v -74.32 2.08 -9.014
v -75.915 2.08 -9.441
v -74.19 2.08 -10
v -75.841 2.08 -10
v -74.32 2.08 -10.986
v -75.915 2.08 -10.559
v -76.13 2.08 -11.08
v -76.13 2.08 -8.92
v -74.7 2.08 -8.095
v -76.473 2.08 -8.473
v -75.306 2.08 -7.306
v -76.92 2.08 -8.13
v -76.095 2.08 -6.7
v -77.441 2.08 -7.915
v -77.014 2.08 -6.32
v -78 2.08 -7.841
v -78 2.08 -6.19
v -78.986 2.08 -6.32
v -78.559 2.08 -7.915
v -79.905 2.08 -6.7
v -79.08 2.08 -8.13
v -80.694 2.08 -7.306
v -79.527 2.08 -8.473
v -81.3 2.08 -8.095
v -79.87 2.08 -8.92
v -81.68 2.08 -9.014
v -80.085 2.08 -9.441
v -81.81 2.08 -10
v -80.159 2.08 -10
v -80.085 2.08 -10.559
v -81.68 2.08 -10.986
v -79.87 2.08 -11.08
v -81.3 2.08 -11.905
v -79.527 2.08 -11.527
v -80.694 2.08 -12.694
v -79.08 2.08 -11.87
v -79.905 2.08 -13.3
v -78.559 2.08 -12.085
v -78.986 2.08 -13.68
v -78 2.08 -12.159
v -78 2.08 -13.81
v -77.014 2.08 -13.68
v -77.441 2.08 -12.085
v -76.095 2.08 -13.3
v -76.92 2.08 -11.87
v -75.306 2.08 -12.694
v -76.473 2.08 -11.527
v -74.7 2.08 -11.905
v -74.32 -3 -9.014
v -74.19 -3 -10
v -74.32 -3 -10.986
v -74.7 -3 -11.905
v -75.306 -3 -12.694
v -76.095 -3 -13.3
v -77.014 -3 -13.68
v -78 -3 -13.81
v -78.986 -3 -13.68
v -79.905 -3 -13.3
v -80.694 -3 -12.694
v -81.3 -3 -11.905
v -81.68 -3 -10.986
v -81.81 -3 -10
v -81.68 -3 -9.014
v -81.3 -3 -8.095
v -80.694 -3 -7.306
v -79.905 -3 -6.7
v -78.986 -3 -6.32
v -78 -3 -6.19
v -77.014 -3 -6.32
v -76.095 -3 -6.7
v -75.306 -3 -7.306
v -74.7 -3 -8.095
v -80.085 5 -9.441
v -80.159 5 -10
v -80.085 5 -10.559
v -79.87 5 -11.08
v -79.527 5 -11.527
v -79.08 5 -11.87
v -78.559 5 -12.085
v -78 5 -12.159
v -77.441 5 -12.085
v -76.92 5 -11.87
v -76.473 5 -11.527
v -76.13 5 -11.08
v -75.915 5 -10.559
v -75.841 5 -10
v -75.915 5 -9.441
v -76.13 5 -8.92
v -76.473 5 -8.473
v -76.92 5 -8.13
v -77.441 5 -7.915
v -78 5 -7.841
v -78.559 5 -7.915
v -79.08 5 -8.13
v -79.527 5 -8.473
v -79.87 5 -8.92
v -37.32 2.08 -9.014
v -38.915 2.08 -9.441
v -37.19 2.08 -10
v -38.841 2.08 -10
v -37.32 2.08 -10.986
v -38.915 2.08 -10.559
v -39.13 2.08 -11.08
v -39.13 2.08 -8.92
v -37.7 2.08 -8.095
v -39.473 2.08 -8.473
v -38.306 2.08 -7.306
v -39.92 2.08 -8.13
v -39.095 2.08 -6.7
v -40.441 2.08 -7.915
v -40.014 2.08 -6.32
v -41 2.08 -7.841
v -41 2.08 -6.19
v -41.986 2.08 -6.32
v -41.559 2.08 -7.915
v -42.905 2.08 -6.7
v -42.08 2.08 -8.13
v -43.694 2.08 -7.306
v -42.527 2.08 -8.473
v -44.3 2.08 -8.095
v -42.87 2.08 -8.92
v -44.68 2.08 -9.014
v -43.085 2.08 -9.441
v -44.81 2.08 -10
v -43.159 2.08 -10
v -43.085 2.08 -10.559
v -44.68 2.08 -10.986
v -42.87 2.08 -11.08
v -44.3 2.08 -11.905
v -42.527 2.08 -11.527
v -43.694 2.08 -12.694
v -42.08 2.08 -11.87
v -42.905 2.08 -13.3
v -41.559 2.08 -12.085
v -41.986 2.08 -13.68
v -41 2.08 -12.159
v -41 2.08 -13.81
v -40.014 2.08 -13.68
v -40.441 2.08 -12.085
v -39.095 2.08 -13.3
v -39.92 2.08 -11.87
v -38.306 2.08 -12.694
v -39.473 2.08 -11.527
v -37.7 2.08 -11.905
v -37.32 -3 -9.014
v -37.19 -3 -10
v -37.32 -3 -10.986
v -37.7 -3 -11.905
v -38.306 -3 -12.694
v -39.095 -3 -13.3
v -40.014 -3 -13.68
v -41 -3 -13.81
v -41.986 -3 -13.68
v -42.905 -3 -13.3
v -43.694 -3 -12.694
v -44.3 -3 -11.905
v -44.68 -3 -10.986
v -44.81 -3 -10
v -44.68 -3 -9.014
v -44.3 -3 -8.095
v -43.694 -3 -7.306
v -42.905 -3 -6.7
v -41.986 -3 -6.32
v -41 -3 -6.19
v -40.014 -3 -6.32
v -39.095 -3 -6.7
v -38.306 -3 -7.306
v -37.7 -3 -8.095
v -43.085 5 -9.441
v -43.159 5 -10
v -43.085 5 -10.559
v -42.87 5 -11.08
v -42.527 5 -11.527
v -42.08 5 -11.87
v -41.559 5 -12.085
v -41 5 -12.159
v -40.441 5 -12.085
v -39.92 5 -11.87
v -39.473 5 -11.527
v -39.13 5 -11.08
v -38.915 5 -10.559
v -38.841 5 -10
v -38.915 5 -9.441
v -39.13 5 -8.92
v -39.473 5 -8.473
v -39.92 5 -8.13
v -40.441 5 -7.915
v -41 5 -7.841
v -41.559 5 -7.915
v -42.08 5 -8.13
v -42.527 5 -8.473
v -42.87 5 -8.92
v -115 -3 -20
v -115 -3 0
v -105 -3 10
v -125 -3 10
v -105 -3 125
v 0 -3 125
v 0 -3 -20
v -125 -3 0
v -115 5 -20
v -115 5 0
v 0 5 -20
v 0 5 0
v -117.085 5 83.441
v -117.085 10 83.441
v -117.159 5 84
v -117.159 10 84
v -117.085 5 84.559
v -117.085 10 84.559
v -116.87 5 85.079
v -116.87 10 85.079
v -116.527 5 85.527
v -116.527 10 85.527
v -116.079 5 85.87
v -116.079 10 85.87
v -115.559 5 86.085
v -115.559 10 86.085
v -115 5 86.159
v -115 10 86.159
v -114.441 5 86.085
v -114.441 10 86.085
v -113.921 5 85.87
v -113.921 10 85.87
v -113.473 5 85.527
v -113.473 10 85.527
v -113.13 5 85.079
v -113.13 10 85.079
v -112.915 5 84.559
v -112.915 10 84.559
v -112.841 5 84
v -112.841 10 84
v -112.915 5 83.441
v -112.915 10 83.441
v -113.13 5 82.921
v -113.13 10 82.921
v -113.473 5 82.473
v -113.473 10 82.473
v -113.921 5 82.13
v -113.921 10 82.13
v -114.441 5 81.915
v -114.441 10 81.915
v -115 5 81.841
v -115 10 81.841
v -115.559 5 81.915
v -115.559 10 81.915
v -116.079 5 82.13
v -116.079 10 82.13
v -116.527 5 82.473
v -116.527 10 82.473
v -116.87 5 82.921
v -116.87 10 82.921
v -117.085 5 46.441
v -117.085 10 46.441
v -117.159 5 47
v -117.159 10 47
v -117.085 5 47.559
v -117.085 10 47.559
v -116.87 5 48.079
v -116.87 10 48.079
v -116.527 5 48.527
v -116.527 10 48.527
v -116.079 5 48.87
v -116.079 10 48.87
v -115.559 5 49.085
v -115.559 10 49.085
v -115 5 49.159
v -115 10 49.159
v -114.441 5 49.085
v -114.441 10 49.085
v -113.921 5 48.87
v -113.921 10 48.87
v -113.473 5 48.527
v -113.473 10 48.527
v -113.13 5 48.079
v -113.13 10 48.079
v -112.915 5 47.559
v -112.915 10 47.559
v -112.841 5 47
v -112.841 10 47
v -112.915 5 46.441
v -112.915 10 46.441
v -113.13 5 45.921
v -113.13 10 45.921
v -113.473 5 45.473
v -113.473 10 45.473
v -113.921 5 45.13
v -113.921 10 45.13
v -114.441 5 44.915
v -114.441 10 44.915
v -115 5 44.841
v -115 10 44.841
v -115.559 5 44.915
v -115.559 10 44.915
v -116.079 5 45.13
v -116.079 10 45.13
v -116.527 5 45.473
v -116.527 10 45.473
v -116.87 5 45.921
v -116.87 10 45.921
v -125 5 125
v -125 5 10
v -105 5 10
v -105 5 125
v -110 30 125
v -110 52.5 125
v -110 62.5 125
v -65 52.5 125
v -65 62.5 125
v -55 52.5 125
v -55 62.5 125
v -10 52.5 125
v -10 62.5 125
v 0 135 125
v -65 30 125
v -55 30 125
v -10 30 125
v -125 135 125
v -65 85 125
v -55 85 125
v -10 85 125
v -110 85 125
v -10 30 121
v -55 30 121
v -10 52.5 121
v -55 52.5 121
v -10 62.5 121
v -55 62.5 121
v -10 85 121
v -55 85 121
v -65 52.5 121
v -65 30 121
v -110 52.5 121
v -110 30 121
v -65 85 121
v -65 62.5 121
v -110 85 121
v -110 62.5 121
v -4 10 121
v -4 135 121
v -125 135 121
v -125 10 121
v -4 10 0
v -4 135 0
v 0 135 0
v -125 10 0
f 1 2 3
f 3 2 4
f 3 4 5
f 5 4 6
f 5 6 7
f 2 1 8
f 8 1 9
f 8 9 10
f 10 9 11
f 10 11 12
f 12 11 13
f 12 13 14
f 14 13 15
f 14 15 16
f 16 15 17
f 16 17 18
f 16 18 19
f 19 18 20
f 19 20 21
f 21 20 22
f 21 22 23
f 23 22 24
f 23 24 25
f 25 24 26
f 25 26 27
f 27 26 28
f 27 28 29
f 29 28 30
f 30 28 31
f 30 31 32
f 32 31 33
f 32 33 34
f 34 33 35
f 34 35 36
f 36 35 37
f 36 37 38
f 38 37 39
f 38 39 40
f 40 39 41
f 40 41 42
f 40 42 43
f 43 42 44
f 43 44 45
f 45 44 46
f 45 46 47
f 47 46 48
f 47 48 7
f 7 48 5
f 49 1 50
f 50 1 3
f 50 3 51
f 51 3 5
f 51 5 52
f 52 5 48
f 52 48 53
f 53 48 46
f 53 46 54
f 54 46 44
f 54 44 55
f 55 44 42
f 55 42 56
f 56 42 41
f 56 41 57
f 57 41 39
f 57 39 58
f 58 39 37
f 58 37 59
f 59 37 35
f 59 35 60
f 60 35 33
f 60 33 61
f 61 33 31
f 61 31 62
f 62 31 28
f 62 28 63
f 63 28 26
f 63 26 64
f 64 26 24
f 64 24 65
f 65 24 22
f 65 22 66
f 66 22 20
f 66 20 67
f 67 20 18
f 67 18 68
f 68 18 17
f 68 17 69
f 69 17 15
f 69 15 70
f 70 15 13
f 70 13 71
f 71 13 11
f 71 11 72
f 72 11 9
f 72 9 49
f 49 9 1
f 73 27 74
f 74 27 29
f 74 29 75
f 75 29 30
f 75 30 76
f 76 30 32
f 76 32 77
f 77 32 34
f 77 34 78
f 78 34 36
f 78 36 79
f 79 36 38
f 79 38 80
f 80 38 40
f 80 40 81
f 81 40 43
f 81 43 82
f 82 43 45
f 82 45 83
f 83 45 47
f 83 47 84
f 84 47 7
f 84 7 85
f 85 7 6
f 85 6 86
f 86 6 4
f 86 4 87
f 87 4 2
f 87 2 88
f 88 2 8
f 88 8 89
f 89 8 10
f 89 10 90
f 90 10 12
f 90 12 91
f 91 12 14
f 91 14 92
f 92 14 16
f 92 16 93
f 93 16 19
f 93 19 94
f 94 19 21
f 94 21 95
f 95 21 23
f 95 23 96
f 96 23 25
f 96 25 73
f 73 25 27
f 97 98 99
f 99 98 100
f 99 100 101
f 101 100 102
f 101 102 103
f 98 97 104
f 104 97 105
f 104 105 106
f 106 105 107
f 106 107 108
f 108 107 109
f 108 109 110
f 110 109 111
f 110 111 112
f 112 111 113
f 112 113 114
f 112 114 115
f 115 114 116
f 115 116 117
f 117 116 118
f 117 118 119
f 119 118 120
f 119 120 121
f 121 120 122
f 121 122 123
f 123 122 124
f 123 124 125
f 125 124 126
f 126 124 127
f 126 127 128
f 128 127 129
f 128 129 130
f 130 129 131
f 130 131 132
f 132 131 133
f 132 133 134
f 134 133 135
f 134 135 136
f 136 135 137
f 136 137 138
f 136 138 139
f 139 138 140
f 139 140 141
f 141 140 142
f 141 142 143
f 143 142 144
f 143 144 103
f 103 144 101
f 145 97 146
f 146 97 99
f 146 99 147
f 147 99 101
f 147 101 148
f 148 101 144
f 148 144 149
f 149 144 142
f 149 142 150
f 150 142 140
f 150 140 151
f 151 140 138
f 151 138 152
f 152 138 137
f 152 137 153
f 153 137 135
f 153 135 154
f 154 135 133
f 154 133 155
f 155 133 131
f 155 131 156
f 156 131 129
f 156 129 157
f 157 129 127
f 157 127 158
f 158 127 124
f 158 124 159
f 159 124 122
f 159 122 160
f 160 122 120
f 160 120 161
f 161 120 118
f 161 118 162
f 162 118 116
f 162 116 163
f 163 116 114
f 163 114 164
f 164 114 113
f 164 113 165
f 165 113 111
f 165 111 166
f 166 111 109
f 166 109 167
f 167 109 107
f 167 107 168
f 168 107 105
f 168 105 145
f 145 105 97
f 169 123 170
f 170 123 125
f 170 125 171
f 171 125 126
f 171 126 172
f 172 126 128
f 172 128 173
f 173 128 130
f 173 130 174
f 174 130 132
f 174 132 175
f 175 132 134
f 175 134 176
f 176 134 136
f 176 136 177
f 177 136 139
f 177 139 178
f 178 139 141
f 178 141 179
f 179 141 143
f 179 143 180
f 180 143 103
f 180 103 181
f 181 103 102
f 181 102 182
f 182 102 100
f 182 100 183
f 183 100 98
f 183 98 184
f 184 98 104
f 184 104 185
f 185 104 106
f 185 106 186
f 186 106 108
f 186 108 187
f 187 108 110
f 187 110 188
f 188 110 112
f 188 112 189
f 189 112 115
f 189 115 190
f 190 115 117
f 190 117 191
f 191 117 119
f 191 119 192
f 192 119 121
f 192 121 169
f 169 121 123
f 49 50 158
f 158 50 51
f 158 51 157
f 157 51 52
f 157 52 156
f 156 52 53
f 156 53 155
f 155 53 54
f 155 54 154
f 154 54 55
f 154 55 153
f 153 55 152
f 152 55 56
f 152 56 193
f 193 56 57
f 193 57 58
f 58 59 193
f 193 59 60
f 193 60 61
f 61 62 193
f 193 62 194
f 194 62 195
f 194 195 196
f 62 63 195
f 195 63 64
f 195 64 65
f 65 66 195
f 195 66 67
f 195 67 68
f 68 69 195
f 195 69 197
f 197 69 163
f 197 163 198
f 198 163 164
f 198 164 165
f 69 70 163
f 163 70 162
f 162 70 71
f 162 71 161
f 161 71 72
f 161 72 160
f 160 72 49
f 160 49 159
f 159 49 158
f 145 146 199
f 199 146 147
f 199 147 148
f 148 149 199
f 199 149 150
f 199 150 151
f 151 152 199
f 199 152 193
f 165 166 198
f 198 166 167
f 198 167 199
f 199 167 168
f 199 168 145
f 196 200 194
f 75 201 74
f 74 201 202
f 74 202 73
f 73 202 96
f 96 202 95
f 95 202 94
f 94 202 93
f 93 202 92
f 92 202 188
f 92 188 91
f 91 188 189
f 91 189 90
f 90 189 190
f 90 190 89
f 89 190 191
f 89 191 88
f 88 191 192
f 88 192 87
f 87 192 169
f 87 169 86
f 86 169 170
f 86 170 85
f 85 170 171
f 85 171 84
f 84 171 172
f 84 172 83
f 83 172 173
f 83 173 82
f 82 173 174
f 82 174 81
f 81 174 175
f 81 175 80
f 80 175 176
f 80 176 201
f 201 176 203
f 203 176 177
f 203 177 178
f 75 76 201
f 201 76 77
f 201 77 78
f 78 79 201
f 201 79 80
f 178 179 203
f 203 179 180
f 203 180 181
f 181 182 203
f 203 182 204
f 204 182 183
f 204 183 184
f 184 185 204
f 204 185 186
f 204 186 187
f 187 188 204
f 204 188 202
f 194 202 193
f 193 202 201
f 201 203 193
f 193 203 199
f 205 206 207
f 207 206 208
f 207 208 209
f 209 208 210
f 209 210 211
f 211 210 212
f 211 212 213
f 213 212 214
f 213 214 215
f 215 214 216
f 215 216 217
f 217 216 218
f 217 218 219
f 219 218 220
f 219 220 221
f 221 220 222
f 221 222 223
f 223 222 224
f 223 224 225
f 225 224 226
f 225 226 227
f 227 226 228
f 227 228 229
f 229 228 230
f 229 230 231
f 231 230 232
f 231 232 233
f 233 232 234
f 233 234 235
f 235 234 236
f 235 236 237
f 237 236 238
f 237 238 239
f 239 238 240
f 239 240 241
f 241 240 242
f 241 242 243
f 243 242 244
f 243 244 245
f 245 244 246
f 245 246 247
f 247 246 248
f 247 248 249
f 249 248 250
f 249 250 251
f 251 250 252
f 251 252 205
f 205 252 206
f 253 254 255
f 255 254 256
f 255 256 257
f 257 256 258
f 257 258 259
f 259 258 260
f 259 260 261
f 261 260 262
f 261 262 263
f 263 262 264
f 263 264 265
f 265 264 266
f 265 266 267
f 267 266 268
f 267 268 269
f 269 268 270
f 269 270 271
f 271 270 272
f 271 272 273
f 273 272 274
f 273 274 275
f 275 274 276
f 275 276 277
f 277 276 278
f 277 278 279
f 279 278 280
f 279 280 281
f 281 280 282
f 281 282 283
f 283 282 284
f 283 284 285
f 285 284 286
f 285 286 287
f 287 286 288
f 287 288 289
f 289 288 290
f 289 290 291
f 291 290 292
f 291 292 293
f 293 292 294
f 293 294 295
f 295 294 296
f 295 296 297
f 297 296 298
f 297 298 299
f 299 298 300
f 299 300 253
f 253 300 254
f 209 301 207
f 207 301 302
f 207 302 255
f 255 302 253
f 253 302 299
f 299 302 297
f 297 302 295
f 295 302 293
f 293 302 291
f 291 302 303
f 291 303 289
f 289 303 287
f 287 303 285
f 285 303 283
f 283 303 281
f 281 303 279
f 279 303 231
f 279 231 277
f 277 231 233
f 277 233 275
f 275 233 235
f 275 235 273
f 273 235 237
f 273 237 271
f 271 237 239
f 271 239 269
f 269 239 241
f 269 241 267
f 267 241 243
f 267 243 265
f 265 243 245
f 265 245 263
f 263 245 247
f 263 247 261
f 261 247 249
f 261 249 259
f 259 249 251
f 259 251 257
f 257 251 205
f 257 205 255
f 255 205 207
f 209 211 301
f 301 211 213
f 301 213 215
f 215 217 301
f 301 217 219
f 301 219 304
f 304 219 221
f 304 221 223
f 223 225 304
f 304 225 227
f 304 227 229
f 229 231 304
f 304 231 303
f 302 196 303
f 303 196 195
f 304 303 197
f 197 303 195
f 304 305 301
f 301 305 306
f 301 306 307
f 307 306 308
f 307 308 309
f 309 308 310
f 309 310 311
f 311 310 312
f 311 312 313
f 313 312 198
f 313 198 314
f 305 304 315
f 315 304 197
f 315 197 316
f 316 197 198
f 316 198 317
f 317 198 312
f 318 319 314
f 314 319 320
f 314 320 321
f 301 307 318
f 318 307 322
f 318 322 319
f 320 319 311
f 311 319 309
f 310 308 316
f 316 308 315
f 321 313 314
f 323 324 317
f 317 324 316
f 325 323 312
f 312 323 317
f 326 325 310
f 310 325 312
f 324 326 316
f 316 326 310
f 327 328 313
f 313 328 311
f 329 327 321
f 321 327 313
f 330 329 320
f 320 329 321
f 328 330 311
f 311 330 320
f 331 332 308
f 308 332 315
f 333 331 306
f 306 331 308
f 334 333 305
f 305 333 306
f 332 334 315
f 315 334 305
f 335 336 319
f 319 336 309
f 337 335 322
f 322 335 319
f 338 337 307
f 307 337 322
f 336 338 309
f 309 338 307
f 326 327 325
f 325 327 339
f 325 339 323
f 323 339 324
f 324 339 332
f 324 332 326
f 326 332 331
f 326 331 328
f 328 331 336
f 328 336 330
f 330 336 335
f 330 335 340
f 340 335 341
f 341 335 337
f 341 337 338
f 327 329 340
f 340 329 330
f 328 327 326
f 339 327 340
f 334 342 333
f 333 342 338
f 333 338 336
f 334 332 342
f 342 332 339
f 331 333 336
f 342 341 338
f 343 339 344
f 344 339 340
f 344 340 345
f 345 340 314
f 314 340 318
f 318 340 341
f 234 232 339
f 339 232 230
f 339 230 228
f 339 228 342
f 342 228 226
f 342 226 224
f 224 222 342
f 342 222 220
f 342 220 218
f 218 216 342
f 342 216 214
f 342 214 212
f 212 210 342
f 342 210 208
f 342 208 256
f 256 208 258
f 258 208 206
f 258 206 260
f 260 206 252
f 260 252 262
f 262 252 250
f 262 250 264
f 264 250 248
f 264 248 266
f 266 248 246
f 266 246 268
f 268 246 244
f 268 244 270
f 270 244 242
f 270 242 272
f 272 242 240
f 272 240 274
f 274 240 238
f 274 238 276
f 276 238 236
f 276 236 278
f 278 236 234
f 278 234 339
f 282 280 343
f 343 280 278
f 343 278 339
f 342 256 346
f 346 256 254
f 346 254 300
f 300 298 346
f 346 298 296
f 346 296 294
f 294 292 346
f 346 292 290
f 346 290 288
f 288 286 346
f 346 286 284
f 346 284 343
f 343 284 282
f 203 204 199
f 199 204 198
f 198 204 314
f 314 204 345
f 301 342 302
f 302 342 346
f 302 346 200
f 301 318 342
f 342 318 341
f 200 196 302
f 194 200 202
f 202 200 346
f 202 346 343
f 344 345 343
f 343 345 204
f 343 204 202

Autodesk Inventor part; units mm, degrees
ref_plane "YZ Plane" through (0, 0, 0) normal (1, 0, 0) x (0, 1, 0)
ref_plane "XZ Plane" through (0, 0, 0) normal (0, 1, 0) x (-1, 0, 0)
ref_plane "XY Plane" through (0, 0, 0) normal (0, 0, 1) x (1, 0, 0)
sketch "Sketch3" plane through (0, 0, 0) normal (0, 1, 0) x (-1, 0, 0)
  line L0 (0, 0) -> (125, 0)
  line L1 (125, 0) -> (125, 125)
  line L2 (125, 125) -> (0, 125)
  line L3 (0, 125) -> (0, 0)
  dimension "d10" = 125
  dimension "d11" = 125
extrude "Extrusion3" add sketch "Sketch3" along normal blind 10
sketch "Sketch8" plane through (0, 10, 0) normal (0, 1, 0) x (1, 0, 0)
  line L0 (0, 0) -> (-125, 0) projected
  line L1 (0, 0) -> (-4, 0)
  line L2 (-4, 0) -> (-4, -121)
  line L3 (-125, -125) -> (0, -125) projected
  line L4 (-4, -121) -> (-125, -121)
  line L5 (-125, 0) -> (-125, -125) projected
  line L6 (0, 0) -> (-125, 0) projected
  line L7 (-125, 0) -> (-125, -125) projected
  line L8 (-125, -125) -> (0, -125) projected
  line L9 (0, -125) -> (0, 0) projected
  dimension "d38" = 4
  dimension "d39" = 121
  dimension "d40" = 90
extrude "Extrusion8" add sketch "Sketch8" along normal blind 125 contours L9 L3 L5 L4 L2 L0
sketch "Sketch9" plane through (-125, 0, 125) normal (0, 0, 1) x (1, 0, 0)
  line L0 (0, 0) -> (0, 10) projected
  line L1 (0, 10) -> (0, 30)
  line L2 (0, 0) -> (0, 135) projected
  line L3 (0, 30) -> (15, 30)
  line L4 (15, 30) -> (60, 30)
  line L5 (60, 30) -> (60, 52.5)
  line L6 (60, 52.5) -> (15, 52.5)
  line L7 (15, 52.5) -> (15, 30)
  line L8 (15, 52.5) -> (15, 62.5)
  line L9 (15, 62.5) -> (15, 85)
  line L10 (15, 85) -> (60, 85)
  line L11 (60, 85) -> (60, 62.5)
  line L12 (60, 62.5) -> (15, 62.5)
  line L13 (60, 62.5) -> (70, 62.5)
  line L14 (70, 62.5) -> (70, 85)
  line L15 (70, 85) -> (115, 85)
  line L16 (115, 85) -> (115, 62.5)
  line L17 (115, 62.5) -> (70, 62.5)
  line L18 (70, 52.5) -> (70, 62.5)
  line L19 (70, 52.5) -> (70, 30)
  line L20 (70, 30) -> (115, 30)
  line L21 (115, 30) -> (115, 52.5)
  line L22 (115, 52.5) -> (70, 52.5)
  point P0 (125, 0)
  dimension "d43" = 20
  dimension "d44" = 15
  dimension "d45" = 90
  dimension "d46" = 45
  dimension "d47" = 22.5
  dimension "d48" = 10
  dimension "d49" = 22.5
  dimension "d50" = 45
  dimension "d51" = 10
  dimension "d52" = 45
  dimension "d53" = 10
  dimension "d54" = 22.5
  dimension "d55" = 45
extrude "Extrusion9" cut sketch "Sketch9" against normal blind 10
sketch "Sketch10" plane through (-125, 0, 0) normal (-1, 0, 0) x (0, 0, 1)
  line L0 (0, 0) -> (125, 0)
  line L1 (125, 0) -> (125, 5)
  line L2 (0, 5) -> (0, 0)
  line L3 (125, 0) -> (125, 135) projected
  line L4 (125, 5) -> (10, 5)
  line L5 (10, 5) -> (10, 0)
  line L6 (0, 0) -> (125, 0) projected
  dimension "d59" = 5
  dimension "d62" = 125
  dimension "d63" = 115
extrude "Extrusion12" cut sketch "Sketch10" against normal blind 20
sketch "Sketch13" plane through (0, 10, 0) normal (0, 1, 0) x (1, 0, 0)
  line L0 (-125, -10) -> (-105, -10) projected
  line L1 (-125, -10) -> (-125, -47)
  line L2 (-4, -121) -> (-125, -121) projected
  line L3 (-125, -47) -> (-115, -47)
  line L4 (-115, -47) -> (-115, -84)
  point P0 (0, 0)
  dimension "d79" = 37
  dimension "d80" = 10
  dimension "d81" = 37
hole "Hole2" at (-115, 10, 84) at (-115, 10, 47) direction (0, -1, 0) diameter 4.318 end through all
sketch "Sketch14" plane through (0, 0, 0) normal (0, 0, -1) x (-1, 0, 0)
  line L0 (105, 0) -> (0, 0) projected
  line L1 (0, 0) -> (115, 0)
  line L2 (115, 0) -> (115, 5)
  line L3 (117.159, 5) -> (112.841, 5) projected
  line L4 (115, 5) -> (0, 5)
  line L5 (0, 0) -> (0, 135) projected
  line L6 (0, 0) -> (0, 5)
  dimension "d96" = 115
  dimension "d97" = 5
extrude "Extrusion14" add sketch "Sketch14" along normal blind 20
sketch "Sketch15" plane through (0, 10, 0) normal (0, 1, 0) x (1, 0, 0)
  line L0 (-115, 0) -> (-125, 0) projected
  line L1 (-115, 0) -> (-78, 0)
  line L2 (0, 0) -> (-115, 0) projected
  line L3 (-78, 0) -> (-78, 10)
  line L4 (-78, 10) -> (-41, 10)
  dimension "d100" = 37
  dimension "d101" = 10
  dimension "d102" = 37
hole "Hole3" at (-41, 10, -10) at (-78, 10, -10) direction (0, -1, 0) diameter 3.5 end through all
sketch "Sketch16" plane through (0, 0, 0) normal (0, -1, 0) x (1, 0, 0)
  line L0 (0, 0) -> (-115, 0) projected
  circle A0 centre (-41, -10) radius 1.75 projected
  circle A1 centre (-78, -10) radius 1.75 projected
  line L1 (-105, 10) -> (-125, 10) projected
  line L2 (-125, 0) -> (-125, 10) projected
  line L3 (-115, 0) -> (-125, 0) projected
  line L4 (-115, 0) -> (-115, -20) projected
  line L5 (0, -20) -> (-115, -20) projected
  line L6 (0, 125) -> (0, -20) projected
  line L7 (-105, 125) -> (0, 125) projected
  line L8 (-105, 125) -> (-105, 10) projected
extrude "Extrusion15" add sketch "Sketch16" along normal blind 3
sketch "Sketch17" plane through (0, -3, 0) normal (0, -1, 0) x (1, 0, 0)
  circle A0 centre (-41, -10) radius 1.75 projected
  circle A1 centre (-78, -10) radius 1.75 projected
  point P0 (0, 0)
hole "Hole4" at (-78, -3, -10) at (-41, -3, -10) direction (0, 1, 0) diameter 4.318 end through all counterbore diameter 7.62 counterbore depth 5.08
properties part number "QUarter1"
